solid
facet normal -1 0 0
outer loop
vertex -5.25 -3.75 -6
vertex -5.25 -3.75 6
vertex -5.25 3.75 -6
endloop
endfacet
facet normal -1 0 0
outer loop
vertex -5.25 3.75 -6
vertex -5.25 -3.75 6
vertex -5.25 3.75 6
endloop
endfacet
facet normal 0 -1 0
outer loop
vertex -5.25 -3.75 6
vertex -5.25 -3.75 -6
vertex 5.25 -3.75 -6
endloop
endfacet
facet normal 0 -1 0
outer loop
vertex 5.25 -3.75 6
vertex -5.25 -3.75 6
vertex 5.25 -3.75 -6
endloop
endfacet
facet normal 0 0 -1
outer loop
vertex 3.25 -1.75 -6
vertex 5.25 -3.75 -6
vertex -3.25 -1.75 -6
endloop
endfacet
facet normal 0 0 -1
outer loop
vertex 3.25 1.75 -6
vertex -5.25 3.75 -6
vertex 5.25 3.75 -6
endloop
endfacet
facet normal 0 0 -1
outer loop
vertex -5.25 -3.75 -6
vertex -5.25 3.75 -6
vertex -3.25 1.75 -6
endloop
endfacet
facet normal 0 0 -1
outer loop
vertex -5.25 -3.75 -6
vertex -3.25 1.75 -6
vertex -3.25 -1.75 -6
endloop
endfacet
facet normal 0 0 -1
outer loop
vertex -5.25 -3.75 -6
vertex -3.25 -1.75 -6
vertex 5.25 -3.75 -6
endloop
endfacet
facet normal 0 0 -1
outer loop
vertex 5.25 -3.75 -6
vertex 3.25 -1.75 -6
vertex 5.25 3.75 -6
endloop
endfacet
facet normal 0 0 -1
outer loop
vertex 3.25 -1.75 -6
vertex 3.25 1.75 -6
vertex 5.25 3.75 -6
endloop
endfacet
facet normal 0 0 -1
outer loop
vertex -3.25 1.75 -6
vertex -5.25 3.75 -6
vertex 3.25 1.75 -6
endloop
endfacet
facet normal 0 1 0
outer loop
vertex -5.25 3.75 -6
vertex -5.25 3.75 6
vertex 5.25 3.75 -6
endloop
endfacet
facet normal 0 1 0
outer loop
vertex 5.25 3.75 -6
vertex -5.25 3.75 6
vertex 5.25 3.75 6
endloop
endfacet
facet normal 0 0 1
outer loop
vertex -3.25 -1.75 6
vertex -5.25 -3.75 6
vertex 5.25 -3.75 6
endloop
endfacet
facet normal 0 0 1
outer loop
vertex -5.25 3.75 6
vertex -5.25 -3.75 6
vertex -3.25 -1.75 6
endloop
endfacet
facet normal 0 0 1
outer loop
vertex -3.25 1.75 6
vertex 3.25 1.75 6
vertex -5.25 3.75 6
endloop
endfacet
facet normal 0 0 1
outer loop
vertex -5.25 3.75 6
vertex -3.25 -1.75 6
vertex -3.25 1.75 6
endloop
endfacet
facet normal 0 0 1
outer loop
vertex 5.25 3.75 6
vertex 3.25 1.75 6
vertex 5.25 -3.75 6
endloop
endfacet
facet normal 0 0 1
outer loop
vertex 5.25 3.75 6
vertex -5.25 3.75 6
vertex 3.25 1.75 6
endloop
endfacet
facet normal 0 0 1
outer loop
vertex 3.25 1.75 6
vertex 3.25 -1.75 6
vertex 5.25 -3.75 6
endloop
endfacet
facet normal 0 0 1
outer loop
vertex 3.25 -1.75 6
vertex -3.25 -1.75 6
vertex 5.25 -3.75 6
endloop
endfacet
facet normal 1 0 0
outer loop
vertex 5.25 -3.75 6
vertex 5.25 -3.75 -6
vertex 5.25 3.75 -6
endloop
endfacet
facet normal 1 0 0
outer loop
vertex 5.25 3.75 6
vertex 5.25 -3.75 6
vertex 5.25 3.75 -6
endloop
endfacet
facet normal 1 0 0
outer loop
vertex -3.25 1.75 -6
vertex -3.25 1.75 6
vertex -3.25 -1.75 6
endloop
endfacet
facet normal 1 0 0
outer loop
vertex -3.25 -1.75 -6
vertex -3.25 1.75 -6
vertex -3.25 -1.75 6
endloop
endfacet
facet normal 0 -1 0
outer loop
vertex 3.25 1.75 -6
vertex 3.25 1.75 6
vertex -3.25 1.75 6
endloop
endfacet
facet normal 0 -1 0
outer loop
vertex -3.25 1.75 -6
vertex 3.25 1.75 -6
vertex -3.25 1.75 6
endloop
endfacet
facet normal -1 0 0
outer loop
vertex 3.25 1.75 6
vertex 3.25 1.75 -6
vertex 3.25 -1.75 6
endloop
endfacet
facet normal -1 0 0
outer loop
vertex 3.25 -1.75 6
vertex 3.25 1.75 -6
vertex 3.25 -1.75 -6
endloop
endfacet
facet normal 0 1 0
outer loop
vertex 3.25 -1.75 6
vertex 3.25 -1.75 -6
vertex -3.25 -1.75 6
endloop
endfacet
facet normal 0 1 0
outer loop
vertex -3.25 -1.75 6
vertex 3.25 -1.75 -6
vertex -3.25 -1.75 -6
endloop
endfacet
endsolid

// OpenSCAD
nozzle=0.5;
wall=2;
spaceh=6;
spacev=3;
height=12;

difference()
{
	cube([spaceh+2*wall+nozzle,spacev+2*wall+nozzle,height],center=true);
	cube([spaceh+nozzle,spacev+nozzle,height],center=true);
}
